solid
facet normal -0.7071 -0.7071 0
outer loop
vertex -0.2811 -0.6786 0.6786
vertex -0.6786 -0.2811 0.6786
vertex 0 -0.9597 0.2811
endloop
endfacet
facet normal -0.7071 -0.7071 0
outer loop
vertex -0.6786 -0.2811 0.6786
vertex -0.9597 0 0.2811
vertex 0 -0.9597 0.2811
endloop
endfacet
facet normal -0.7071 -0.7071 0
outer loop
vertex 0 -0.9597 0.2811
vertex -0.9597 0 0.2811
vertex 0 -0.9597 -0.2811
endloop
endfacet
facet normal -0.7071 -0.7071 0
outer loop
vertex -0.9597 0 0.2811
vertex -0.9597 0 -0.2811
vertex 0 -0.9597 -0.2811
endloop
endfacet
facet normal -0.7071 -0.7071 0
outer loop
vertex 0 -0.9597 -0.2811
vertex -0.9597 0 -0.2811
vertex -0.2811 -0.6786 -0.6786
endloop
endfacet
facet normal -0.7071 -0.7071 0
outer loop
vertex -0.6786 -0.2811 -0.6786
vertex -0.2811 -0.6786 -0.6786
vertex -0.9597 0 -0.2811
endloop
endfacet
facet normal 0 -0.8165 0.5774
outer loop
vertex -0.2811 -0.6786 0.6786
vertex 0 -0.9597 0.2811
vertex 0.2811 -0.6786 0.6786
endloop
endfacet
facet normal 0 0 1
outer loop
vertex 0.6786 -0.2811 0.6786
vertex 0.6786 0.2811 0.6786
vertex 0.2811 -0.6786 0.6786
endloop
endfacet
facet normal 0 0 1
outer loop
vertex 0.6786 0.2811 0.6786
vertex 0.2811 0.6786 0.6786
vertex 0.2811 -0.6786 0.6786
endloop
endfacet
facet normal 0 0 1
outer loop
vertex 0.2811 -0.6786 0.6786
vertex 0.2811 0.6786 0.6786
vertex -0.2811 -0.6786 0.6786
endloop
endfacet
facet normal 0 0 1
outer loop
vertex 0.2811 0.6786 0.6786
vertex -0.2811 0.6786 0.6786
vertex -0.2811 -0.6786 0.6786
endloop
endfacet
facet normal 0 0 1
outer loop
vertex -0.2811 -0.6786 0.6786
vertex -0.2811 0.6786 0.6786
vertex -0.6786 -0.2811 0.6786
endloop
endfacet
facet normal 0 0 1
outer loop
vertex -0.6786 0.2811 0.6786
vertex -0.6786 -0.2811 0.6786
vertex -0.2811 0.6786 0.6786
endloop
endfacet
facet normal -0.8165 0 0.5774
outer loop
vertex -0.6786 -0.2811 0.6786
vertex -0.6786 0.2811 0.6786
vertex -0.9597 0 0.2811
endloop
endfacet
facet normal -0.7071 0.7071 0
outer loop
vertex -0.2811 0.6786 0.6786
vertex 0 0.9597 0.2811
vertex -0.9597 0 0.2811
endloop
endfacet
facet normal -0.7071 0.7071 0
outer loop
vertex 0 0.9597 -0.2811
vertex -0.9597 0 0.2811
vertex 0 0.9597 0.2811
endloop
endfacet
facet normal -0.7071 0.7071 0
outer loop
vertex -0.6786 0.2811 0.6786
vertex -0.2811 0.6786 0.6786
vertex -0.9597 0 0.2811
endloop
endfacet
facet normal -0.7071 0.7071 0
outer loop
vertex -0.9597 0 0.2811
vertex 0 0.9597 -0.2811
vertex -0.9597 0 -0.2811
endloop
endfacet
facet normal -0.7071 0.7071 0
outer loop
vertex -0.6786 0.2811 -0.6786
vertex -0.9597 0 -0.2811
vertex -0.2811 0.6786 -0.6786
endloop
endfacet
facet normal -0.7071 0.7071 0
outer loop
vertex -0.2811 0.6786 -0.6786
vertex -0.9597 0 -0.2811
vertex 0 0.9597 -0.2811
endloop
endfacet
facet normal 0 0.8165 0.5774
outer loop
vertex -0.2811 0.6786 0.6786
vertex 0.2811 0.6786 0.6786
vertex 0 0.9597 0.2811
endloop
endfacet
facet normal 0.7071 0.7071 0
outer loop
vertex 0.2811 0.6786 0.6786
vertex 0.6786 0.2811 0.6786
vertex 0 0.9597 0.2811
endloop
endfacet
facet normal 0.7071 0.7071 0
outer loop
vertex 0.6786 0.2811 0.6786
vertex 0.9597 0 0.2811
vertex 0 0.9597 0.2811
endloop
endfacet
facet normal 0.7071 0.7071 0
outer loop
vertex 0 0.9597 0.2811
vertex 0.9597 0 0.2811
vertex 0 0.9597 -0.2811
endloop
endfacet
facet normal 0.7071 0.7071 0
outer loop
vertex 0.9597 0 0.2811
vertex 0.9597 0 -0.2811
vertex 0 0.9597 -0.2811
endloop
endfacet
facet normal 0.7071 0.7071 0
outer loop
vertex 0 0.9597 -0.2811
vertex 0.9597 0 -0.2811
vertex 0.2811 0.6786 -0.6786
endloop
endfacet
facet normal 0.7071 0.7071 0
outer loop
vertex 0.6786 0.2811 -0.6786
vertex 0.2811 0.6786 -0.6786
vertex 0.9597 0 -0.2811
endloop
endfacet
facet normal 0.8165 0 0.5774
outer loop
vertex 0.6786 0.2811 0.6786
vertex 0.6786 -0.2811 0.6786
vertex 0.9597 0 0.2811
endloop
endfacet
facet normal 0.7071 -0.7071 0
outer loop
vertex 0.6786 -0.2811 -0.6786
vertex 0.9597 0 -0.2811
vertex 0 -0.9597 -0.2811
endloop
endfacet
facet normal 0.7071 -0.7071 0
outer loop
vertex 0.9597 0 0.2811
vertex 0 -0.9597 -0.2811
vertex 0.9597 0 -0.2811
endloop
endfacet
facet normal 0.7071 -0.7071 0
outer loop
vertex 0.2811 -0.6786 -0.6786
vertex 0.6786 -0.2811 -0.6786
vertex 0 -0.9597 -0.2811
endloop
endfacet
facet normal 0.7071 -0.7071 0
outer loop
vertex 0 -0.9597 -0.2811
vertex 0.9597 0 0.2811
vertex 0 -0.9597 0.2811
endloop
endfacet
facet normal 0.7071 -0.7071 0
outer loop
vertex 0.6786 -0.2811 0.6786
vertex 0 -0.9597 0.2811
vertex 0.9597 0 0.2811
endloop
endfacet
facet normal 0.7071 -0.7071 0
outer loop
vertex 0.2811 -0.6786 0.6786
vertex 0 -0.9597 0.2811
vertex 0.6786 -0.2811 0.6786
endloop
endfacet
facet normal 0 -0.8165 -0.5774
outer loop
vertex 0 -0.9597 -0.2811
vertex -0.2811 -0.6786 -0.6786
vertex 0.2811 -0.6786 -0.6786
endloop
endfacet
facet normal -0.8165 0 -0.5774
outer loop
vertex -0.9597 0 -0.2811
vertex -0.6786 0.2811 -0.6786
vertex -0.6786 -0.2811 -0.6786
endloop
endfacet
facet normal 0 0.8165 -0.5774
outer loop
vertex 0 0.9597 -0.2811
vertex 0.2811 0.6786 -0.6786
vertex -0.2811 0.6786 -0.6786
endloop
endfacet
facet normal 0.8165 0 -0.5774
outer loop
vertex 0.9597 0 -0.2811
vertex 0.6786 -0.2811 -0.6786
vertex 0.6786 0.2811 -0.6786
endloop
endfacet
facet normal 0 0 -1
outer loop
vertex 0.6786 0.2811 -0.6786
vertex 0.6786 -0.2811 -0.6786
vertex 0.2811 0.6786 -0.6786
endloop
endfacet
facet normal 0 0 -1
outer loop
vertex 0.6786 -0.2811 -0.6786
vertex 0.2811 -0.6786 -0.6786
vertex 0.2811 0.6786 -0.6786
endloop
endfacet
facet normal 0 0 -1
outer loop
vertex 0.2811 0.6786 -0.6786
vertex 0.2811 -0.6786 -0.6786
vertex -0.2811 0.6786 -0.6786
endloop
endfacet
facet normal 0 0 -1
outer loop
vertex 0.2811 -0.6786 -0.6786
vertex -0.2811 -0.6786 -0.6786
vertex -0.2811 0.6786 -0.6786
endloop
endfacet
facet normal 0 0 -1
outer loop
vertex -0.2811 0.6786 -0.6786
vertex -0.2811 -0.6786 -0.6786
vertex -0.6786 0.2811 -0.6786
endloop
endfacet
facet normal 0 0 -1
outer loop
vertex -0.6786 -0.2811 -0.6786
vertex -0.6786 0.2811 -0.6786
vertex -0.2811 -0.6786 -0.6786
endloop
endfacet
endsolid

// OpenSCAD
polyhedron( points = [[-0.281084637676955, -0.67859834451097, 0.678598344501277], [-0.678598344534399, -0.281084637599985, 0.678598344501277], [-0.67859834445868, 0.281084637783004, 0.678598344501277], [-0.281084637616022, 0.678598344536432, 0.678598344501277], [0.28108463776697, 0.67859834448595, 0.678598344501277], [0.678598344538241, 0.281084637661137, 0.678598344501277], [0.678598344513, -0.281084637721852, 0.678598344501277], [0.281084637706036, -0.67859834451097, 0.678598344501277], [2.9112322051577e-11, -0.959682982271901, 0.281084637676466], [-0.959682982200235, 8.67072156820045e-11, 0.281084637724779], [1.15285529304974e-10, 0.959682982150253, 0.281084637676465], [0.959682982164683, -5.75454622751848e-11, 0.281084637676465], [-8.84625905130681e-11, -0.959682982178374, -0.281084637736992], [-0.959682982269494, 1.31916808637721e-10, -0.281084637627745], [1.66359728149617e-10, 0.959682982124422, -0.281084637688679], [0.959682982138851, -1.08624154879395e-10, -0.281084637688679], [-0.281084637844167, -0.678598344401816, -0.678598344472571], [-0.678598344636981, -0.281084637555461, -0.678598344427317], [-0.678598344365842, 0.281084637690167, -0.678598344520884], [-0.281084637523184, 0.67859834444359, -0.678598344495643], [0.281084637674132, 0.678598344393113, -0.678598344520884], [0.678598344445405, 0.2810846375683, -0.678598344495643], [0.678598344386394, -0.281084637704547, -0.678598344547525], [0.281084637569952, -0.678598344432944, -0.67859834454183]], faces = [[0, 1, 9, 13, 17, 16, 12, 8], [0, 8, 7], [0, 7, 6, 5, 4, 3, 2, 1], [1, 2, 9], [2, 3, 10, 14, 19, 18, 13, 9], [3, 4, 10], [4, 5, 11, 15, 21, 20, 14, 10], [5, 6, 11], [6, 7, 8, 12, 23, 22, 15, 11], [12, 16, 23], [13, 18, 17], [14, 20, 19], [15, 22, 21], [16, 17, 18, 19, 20, 21, 22, 23]]);
